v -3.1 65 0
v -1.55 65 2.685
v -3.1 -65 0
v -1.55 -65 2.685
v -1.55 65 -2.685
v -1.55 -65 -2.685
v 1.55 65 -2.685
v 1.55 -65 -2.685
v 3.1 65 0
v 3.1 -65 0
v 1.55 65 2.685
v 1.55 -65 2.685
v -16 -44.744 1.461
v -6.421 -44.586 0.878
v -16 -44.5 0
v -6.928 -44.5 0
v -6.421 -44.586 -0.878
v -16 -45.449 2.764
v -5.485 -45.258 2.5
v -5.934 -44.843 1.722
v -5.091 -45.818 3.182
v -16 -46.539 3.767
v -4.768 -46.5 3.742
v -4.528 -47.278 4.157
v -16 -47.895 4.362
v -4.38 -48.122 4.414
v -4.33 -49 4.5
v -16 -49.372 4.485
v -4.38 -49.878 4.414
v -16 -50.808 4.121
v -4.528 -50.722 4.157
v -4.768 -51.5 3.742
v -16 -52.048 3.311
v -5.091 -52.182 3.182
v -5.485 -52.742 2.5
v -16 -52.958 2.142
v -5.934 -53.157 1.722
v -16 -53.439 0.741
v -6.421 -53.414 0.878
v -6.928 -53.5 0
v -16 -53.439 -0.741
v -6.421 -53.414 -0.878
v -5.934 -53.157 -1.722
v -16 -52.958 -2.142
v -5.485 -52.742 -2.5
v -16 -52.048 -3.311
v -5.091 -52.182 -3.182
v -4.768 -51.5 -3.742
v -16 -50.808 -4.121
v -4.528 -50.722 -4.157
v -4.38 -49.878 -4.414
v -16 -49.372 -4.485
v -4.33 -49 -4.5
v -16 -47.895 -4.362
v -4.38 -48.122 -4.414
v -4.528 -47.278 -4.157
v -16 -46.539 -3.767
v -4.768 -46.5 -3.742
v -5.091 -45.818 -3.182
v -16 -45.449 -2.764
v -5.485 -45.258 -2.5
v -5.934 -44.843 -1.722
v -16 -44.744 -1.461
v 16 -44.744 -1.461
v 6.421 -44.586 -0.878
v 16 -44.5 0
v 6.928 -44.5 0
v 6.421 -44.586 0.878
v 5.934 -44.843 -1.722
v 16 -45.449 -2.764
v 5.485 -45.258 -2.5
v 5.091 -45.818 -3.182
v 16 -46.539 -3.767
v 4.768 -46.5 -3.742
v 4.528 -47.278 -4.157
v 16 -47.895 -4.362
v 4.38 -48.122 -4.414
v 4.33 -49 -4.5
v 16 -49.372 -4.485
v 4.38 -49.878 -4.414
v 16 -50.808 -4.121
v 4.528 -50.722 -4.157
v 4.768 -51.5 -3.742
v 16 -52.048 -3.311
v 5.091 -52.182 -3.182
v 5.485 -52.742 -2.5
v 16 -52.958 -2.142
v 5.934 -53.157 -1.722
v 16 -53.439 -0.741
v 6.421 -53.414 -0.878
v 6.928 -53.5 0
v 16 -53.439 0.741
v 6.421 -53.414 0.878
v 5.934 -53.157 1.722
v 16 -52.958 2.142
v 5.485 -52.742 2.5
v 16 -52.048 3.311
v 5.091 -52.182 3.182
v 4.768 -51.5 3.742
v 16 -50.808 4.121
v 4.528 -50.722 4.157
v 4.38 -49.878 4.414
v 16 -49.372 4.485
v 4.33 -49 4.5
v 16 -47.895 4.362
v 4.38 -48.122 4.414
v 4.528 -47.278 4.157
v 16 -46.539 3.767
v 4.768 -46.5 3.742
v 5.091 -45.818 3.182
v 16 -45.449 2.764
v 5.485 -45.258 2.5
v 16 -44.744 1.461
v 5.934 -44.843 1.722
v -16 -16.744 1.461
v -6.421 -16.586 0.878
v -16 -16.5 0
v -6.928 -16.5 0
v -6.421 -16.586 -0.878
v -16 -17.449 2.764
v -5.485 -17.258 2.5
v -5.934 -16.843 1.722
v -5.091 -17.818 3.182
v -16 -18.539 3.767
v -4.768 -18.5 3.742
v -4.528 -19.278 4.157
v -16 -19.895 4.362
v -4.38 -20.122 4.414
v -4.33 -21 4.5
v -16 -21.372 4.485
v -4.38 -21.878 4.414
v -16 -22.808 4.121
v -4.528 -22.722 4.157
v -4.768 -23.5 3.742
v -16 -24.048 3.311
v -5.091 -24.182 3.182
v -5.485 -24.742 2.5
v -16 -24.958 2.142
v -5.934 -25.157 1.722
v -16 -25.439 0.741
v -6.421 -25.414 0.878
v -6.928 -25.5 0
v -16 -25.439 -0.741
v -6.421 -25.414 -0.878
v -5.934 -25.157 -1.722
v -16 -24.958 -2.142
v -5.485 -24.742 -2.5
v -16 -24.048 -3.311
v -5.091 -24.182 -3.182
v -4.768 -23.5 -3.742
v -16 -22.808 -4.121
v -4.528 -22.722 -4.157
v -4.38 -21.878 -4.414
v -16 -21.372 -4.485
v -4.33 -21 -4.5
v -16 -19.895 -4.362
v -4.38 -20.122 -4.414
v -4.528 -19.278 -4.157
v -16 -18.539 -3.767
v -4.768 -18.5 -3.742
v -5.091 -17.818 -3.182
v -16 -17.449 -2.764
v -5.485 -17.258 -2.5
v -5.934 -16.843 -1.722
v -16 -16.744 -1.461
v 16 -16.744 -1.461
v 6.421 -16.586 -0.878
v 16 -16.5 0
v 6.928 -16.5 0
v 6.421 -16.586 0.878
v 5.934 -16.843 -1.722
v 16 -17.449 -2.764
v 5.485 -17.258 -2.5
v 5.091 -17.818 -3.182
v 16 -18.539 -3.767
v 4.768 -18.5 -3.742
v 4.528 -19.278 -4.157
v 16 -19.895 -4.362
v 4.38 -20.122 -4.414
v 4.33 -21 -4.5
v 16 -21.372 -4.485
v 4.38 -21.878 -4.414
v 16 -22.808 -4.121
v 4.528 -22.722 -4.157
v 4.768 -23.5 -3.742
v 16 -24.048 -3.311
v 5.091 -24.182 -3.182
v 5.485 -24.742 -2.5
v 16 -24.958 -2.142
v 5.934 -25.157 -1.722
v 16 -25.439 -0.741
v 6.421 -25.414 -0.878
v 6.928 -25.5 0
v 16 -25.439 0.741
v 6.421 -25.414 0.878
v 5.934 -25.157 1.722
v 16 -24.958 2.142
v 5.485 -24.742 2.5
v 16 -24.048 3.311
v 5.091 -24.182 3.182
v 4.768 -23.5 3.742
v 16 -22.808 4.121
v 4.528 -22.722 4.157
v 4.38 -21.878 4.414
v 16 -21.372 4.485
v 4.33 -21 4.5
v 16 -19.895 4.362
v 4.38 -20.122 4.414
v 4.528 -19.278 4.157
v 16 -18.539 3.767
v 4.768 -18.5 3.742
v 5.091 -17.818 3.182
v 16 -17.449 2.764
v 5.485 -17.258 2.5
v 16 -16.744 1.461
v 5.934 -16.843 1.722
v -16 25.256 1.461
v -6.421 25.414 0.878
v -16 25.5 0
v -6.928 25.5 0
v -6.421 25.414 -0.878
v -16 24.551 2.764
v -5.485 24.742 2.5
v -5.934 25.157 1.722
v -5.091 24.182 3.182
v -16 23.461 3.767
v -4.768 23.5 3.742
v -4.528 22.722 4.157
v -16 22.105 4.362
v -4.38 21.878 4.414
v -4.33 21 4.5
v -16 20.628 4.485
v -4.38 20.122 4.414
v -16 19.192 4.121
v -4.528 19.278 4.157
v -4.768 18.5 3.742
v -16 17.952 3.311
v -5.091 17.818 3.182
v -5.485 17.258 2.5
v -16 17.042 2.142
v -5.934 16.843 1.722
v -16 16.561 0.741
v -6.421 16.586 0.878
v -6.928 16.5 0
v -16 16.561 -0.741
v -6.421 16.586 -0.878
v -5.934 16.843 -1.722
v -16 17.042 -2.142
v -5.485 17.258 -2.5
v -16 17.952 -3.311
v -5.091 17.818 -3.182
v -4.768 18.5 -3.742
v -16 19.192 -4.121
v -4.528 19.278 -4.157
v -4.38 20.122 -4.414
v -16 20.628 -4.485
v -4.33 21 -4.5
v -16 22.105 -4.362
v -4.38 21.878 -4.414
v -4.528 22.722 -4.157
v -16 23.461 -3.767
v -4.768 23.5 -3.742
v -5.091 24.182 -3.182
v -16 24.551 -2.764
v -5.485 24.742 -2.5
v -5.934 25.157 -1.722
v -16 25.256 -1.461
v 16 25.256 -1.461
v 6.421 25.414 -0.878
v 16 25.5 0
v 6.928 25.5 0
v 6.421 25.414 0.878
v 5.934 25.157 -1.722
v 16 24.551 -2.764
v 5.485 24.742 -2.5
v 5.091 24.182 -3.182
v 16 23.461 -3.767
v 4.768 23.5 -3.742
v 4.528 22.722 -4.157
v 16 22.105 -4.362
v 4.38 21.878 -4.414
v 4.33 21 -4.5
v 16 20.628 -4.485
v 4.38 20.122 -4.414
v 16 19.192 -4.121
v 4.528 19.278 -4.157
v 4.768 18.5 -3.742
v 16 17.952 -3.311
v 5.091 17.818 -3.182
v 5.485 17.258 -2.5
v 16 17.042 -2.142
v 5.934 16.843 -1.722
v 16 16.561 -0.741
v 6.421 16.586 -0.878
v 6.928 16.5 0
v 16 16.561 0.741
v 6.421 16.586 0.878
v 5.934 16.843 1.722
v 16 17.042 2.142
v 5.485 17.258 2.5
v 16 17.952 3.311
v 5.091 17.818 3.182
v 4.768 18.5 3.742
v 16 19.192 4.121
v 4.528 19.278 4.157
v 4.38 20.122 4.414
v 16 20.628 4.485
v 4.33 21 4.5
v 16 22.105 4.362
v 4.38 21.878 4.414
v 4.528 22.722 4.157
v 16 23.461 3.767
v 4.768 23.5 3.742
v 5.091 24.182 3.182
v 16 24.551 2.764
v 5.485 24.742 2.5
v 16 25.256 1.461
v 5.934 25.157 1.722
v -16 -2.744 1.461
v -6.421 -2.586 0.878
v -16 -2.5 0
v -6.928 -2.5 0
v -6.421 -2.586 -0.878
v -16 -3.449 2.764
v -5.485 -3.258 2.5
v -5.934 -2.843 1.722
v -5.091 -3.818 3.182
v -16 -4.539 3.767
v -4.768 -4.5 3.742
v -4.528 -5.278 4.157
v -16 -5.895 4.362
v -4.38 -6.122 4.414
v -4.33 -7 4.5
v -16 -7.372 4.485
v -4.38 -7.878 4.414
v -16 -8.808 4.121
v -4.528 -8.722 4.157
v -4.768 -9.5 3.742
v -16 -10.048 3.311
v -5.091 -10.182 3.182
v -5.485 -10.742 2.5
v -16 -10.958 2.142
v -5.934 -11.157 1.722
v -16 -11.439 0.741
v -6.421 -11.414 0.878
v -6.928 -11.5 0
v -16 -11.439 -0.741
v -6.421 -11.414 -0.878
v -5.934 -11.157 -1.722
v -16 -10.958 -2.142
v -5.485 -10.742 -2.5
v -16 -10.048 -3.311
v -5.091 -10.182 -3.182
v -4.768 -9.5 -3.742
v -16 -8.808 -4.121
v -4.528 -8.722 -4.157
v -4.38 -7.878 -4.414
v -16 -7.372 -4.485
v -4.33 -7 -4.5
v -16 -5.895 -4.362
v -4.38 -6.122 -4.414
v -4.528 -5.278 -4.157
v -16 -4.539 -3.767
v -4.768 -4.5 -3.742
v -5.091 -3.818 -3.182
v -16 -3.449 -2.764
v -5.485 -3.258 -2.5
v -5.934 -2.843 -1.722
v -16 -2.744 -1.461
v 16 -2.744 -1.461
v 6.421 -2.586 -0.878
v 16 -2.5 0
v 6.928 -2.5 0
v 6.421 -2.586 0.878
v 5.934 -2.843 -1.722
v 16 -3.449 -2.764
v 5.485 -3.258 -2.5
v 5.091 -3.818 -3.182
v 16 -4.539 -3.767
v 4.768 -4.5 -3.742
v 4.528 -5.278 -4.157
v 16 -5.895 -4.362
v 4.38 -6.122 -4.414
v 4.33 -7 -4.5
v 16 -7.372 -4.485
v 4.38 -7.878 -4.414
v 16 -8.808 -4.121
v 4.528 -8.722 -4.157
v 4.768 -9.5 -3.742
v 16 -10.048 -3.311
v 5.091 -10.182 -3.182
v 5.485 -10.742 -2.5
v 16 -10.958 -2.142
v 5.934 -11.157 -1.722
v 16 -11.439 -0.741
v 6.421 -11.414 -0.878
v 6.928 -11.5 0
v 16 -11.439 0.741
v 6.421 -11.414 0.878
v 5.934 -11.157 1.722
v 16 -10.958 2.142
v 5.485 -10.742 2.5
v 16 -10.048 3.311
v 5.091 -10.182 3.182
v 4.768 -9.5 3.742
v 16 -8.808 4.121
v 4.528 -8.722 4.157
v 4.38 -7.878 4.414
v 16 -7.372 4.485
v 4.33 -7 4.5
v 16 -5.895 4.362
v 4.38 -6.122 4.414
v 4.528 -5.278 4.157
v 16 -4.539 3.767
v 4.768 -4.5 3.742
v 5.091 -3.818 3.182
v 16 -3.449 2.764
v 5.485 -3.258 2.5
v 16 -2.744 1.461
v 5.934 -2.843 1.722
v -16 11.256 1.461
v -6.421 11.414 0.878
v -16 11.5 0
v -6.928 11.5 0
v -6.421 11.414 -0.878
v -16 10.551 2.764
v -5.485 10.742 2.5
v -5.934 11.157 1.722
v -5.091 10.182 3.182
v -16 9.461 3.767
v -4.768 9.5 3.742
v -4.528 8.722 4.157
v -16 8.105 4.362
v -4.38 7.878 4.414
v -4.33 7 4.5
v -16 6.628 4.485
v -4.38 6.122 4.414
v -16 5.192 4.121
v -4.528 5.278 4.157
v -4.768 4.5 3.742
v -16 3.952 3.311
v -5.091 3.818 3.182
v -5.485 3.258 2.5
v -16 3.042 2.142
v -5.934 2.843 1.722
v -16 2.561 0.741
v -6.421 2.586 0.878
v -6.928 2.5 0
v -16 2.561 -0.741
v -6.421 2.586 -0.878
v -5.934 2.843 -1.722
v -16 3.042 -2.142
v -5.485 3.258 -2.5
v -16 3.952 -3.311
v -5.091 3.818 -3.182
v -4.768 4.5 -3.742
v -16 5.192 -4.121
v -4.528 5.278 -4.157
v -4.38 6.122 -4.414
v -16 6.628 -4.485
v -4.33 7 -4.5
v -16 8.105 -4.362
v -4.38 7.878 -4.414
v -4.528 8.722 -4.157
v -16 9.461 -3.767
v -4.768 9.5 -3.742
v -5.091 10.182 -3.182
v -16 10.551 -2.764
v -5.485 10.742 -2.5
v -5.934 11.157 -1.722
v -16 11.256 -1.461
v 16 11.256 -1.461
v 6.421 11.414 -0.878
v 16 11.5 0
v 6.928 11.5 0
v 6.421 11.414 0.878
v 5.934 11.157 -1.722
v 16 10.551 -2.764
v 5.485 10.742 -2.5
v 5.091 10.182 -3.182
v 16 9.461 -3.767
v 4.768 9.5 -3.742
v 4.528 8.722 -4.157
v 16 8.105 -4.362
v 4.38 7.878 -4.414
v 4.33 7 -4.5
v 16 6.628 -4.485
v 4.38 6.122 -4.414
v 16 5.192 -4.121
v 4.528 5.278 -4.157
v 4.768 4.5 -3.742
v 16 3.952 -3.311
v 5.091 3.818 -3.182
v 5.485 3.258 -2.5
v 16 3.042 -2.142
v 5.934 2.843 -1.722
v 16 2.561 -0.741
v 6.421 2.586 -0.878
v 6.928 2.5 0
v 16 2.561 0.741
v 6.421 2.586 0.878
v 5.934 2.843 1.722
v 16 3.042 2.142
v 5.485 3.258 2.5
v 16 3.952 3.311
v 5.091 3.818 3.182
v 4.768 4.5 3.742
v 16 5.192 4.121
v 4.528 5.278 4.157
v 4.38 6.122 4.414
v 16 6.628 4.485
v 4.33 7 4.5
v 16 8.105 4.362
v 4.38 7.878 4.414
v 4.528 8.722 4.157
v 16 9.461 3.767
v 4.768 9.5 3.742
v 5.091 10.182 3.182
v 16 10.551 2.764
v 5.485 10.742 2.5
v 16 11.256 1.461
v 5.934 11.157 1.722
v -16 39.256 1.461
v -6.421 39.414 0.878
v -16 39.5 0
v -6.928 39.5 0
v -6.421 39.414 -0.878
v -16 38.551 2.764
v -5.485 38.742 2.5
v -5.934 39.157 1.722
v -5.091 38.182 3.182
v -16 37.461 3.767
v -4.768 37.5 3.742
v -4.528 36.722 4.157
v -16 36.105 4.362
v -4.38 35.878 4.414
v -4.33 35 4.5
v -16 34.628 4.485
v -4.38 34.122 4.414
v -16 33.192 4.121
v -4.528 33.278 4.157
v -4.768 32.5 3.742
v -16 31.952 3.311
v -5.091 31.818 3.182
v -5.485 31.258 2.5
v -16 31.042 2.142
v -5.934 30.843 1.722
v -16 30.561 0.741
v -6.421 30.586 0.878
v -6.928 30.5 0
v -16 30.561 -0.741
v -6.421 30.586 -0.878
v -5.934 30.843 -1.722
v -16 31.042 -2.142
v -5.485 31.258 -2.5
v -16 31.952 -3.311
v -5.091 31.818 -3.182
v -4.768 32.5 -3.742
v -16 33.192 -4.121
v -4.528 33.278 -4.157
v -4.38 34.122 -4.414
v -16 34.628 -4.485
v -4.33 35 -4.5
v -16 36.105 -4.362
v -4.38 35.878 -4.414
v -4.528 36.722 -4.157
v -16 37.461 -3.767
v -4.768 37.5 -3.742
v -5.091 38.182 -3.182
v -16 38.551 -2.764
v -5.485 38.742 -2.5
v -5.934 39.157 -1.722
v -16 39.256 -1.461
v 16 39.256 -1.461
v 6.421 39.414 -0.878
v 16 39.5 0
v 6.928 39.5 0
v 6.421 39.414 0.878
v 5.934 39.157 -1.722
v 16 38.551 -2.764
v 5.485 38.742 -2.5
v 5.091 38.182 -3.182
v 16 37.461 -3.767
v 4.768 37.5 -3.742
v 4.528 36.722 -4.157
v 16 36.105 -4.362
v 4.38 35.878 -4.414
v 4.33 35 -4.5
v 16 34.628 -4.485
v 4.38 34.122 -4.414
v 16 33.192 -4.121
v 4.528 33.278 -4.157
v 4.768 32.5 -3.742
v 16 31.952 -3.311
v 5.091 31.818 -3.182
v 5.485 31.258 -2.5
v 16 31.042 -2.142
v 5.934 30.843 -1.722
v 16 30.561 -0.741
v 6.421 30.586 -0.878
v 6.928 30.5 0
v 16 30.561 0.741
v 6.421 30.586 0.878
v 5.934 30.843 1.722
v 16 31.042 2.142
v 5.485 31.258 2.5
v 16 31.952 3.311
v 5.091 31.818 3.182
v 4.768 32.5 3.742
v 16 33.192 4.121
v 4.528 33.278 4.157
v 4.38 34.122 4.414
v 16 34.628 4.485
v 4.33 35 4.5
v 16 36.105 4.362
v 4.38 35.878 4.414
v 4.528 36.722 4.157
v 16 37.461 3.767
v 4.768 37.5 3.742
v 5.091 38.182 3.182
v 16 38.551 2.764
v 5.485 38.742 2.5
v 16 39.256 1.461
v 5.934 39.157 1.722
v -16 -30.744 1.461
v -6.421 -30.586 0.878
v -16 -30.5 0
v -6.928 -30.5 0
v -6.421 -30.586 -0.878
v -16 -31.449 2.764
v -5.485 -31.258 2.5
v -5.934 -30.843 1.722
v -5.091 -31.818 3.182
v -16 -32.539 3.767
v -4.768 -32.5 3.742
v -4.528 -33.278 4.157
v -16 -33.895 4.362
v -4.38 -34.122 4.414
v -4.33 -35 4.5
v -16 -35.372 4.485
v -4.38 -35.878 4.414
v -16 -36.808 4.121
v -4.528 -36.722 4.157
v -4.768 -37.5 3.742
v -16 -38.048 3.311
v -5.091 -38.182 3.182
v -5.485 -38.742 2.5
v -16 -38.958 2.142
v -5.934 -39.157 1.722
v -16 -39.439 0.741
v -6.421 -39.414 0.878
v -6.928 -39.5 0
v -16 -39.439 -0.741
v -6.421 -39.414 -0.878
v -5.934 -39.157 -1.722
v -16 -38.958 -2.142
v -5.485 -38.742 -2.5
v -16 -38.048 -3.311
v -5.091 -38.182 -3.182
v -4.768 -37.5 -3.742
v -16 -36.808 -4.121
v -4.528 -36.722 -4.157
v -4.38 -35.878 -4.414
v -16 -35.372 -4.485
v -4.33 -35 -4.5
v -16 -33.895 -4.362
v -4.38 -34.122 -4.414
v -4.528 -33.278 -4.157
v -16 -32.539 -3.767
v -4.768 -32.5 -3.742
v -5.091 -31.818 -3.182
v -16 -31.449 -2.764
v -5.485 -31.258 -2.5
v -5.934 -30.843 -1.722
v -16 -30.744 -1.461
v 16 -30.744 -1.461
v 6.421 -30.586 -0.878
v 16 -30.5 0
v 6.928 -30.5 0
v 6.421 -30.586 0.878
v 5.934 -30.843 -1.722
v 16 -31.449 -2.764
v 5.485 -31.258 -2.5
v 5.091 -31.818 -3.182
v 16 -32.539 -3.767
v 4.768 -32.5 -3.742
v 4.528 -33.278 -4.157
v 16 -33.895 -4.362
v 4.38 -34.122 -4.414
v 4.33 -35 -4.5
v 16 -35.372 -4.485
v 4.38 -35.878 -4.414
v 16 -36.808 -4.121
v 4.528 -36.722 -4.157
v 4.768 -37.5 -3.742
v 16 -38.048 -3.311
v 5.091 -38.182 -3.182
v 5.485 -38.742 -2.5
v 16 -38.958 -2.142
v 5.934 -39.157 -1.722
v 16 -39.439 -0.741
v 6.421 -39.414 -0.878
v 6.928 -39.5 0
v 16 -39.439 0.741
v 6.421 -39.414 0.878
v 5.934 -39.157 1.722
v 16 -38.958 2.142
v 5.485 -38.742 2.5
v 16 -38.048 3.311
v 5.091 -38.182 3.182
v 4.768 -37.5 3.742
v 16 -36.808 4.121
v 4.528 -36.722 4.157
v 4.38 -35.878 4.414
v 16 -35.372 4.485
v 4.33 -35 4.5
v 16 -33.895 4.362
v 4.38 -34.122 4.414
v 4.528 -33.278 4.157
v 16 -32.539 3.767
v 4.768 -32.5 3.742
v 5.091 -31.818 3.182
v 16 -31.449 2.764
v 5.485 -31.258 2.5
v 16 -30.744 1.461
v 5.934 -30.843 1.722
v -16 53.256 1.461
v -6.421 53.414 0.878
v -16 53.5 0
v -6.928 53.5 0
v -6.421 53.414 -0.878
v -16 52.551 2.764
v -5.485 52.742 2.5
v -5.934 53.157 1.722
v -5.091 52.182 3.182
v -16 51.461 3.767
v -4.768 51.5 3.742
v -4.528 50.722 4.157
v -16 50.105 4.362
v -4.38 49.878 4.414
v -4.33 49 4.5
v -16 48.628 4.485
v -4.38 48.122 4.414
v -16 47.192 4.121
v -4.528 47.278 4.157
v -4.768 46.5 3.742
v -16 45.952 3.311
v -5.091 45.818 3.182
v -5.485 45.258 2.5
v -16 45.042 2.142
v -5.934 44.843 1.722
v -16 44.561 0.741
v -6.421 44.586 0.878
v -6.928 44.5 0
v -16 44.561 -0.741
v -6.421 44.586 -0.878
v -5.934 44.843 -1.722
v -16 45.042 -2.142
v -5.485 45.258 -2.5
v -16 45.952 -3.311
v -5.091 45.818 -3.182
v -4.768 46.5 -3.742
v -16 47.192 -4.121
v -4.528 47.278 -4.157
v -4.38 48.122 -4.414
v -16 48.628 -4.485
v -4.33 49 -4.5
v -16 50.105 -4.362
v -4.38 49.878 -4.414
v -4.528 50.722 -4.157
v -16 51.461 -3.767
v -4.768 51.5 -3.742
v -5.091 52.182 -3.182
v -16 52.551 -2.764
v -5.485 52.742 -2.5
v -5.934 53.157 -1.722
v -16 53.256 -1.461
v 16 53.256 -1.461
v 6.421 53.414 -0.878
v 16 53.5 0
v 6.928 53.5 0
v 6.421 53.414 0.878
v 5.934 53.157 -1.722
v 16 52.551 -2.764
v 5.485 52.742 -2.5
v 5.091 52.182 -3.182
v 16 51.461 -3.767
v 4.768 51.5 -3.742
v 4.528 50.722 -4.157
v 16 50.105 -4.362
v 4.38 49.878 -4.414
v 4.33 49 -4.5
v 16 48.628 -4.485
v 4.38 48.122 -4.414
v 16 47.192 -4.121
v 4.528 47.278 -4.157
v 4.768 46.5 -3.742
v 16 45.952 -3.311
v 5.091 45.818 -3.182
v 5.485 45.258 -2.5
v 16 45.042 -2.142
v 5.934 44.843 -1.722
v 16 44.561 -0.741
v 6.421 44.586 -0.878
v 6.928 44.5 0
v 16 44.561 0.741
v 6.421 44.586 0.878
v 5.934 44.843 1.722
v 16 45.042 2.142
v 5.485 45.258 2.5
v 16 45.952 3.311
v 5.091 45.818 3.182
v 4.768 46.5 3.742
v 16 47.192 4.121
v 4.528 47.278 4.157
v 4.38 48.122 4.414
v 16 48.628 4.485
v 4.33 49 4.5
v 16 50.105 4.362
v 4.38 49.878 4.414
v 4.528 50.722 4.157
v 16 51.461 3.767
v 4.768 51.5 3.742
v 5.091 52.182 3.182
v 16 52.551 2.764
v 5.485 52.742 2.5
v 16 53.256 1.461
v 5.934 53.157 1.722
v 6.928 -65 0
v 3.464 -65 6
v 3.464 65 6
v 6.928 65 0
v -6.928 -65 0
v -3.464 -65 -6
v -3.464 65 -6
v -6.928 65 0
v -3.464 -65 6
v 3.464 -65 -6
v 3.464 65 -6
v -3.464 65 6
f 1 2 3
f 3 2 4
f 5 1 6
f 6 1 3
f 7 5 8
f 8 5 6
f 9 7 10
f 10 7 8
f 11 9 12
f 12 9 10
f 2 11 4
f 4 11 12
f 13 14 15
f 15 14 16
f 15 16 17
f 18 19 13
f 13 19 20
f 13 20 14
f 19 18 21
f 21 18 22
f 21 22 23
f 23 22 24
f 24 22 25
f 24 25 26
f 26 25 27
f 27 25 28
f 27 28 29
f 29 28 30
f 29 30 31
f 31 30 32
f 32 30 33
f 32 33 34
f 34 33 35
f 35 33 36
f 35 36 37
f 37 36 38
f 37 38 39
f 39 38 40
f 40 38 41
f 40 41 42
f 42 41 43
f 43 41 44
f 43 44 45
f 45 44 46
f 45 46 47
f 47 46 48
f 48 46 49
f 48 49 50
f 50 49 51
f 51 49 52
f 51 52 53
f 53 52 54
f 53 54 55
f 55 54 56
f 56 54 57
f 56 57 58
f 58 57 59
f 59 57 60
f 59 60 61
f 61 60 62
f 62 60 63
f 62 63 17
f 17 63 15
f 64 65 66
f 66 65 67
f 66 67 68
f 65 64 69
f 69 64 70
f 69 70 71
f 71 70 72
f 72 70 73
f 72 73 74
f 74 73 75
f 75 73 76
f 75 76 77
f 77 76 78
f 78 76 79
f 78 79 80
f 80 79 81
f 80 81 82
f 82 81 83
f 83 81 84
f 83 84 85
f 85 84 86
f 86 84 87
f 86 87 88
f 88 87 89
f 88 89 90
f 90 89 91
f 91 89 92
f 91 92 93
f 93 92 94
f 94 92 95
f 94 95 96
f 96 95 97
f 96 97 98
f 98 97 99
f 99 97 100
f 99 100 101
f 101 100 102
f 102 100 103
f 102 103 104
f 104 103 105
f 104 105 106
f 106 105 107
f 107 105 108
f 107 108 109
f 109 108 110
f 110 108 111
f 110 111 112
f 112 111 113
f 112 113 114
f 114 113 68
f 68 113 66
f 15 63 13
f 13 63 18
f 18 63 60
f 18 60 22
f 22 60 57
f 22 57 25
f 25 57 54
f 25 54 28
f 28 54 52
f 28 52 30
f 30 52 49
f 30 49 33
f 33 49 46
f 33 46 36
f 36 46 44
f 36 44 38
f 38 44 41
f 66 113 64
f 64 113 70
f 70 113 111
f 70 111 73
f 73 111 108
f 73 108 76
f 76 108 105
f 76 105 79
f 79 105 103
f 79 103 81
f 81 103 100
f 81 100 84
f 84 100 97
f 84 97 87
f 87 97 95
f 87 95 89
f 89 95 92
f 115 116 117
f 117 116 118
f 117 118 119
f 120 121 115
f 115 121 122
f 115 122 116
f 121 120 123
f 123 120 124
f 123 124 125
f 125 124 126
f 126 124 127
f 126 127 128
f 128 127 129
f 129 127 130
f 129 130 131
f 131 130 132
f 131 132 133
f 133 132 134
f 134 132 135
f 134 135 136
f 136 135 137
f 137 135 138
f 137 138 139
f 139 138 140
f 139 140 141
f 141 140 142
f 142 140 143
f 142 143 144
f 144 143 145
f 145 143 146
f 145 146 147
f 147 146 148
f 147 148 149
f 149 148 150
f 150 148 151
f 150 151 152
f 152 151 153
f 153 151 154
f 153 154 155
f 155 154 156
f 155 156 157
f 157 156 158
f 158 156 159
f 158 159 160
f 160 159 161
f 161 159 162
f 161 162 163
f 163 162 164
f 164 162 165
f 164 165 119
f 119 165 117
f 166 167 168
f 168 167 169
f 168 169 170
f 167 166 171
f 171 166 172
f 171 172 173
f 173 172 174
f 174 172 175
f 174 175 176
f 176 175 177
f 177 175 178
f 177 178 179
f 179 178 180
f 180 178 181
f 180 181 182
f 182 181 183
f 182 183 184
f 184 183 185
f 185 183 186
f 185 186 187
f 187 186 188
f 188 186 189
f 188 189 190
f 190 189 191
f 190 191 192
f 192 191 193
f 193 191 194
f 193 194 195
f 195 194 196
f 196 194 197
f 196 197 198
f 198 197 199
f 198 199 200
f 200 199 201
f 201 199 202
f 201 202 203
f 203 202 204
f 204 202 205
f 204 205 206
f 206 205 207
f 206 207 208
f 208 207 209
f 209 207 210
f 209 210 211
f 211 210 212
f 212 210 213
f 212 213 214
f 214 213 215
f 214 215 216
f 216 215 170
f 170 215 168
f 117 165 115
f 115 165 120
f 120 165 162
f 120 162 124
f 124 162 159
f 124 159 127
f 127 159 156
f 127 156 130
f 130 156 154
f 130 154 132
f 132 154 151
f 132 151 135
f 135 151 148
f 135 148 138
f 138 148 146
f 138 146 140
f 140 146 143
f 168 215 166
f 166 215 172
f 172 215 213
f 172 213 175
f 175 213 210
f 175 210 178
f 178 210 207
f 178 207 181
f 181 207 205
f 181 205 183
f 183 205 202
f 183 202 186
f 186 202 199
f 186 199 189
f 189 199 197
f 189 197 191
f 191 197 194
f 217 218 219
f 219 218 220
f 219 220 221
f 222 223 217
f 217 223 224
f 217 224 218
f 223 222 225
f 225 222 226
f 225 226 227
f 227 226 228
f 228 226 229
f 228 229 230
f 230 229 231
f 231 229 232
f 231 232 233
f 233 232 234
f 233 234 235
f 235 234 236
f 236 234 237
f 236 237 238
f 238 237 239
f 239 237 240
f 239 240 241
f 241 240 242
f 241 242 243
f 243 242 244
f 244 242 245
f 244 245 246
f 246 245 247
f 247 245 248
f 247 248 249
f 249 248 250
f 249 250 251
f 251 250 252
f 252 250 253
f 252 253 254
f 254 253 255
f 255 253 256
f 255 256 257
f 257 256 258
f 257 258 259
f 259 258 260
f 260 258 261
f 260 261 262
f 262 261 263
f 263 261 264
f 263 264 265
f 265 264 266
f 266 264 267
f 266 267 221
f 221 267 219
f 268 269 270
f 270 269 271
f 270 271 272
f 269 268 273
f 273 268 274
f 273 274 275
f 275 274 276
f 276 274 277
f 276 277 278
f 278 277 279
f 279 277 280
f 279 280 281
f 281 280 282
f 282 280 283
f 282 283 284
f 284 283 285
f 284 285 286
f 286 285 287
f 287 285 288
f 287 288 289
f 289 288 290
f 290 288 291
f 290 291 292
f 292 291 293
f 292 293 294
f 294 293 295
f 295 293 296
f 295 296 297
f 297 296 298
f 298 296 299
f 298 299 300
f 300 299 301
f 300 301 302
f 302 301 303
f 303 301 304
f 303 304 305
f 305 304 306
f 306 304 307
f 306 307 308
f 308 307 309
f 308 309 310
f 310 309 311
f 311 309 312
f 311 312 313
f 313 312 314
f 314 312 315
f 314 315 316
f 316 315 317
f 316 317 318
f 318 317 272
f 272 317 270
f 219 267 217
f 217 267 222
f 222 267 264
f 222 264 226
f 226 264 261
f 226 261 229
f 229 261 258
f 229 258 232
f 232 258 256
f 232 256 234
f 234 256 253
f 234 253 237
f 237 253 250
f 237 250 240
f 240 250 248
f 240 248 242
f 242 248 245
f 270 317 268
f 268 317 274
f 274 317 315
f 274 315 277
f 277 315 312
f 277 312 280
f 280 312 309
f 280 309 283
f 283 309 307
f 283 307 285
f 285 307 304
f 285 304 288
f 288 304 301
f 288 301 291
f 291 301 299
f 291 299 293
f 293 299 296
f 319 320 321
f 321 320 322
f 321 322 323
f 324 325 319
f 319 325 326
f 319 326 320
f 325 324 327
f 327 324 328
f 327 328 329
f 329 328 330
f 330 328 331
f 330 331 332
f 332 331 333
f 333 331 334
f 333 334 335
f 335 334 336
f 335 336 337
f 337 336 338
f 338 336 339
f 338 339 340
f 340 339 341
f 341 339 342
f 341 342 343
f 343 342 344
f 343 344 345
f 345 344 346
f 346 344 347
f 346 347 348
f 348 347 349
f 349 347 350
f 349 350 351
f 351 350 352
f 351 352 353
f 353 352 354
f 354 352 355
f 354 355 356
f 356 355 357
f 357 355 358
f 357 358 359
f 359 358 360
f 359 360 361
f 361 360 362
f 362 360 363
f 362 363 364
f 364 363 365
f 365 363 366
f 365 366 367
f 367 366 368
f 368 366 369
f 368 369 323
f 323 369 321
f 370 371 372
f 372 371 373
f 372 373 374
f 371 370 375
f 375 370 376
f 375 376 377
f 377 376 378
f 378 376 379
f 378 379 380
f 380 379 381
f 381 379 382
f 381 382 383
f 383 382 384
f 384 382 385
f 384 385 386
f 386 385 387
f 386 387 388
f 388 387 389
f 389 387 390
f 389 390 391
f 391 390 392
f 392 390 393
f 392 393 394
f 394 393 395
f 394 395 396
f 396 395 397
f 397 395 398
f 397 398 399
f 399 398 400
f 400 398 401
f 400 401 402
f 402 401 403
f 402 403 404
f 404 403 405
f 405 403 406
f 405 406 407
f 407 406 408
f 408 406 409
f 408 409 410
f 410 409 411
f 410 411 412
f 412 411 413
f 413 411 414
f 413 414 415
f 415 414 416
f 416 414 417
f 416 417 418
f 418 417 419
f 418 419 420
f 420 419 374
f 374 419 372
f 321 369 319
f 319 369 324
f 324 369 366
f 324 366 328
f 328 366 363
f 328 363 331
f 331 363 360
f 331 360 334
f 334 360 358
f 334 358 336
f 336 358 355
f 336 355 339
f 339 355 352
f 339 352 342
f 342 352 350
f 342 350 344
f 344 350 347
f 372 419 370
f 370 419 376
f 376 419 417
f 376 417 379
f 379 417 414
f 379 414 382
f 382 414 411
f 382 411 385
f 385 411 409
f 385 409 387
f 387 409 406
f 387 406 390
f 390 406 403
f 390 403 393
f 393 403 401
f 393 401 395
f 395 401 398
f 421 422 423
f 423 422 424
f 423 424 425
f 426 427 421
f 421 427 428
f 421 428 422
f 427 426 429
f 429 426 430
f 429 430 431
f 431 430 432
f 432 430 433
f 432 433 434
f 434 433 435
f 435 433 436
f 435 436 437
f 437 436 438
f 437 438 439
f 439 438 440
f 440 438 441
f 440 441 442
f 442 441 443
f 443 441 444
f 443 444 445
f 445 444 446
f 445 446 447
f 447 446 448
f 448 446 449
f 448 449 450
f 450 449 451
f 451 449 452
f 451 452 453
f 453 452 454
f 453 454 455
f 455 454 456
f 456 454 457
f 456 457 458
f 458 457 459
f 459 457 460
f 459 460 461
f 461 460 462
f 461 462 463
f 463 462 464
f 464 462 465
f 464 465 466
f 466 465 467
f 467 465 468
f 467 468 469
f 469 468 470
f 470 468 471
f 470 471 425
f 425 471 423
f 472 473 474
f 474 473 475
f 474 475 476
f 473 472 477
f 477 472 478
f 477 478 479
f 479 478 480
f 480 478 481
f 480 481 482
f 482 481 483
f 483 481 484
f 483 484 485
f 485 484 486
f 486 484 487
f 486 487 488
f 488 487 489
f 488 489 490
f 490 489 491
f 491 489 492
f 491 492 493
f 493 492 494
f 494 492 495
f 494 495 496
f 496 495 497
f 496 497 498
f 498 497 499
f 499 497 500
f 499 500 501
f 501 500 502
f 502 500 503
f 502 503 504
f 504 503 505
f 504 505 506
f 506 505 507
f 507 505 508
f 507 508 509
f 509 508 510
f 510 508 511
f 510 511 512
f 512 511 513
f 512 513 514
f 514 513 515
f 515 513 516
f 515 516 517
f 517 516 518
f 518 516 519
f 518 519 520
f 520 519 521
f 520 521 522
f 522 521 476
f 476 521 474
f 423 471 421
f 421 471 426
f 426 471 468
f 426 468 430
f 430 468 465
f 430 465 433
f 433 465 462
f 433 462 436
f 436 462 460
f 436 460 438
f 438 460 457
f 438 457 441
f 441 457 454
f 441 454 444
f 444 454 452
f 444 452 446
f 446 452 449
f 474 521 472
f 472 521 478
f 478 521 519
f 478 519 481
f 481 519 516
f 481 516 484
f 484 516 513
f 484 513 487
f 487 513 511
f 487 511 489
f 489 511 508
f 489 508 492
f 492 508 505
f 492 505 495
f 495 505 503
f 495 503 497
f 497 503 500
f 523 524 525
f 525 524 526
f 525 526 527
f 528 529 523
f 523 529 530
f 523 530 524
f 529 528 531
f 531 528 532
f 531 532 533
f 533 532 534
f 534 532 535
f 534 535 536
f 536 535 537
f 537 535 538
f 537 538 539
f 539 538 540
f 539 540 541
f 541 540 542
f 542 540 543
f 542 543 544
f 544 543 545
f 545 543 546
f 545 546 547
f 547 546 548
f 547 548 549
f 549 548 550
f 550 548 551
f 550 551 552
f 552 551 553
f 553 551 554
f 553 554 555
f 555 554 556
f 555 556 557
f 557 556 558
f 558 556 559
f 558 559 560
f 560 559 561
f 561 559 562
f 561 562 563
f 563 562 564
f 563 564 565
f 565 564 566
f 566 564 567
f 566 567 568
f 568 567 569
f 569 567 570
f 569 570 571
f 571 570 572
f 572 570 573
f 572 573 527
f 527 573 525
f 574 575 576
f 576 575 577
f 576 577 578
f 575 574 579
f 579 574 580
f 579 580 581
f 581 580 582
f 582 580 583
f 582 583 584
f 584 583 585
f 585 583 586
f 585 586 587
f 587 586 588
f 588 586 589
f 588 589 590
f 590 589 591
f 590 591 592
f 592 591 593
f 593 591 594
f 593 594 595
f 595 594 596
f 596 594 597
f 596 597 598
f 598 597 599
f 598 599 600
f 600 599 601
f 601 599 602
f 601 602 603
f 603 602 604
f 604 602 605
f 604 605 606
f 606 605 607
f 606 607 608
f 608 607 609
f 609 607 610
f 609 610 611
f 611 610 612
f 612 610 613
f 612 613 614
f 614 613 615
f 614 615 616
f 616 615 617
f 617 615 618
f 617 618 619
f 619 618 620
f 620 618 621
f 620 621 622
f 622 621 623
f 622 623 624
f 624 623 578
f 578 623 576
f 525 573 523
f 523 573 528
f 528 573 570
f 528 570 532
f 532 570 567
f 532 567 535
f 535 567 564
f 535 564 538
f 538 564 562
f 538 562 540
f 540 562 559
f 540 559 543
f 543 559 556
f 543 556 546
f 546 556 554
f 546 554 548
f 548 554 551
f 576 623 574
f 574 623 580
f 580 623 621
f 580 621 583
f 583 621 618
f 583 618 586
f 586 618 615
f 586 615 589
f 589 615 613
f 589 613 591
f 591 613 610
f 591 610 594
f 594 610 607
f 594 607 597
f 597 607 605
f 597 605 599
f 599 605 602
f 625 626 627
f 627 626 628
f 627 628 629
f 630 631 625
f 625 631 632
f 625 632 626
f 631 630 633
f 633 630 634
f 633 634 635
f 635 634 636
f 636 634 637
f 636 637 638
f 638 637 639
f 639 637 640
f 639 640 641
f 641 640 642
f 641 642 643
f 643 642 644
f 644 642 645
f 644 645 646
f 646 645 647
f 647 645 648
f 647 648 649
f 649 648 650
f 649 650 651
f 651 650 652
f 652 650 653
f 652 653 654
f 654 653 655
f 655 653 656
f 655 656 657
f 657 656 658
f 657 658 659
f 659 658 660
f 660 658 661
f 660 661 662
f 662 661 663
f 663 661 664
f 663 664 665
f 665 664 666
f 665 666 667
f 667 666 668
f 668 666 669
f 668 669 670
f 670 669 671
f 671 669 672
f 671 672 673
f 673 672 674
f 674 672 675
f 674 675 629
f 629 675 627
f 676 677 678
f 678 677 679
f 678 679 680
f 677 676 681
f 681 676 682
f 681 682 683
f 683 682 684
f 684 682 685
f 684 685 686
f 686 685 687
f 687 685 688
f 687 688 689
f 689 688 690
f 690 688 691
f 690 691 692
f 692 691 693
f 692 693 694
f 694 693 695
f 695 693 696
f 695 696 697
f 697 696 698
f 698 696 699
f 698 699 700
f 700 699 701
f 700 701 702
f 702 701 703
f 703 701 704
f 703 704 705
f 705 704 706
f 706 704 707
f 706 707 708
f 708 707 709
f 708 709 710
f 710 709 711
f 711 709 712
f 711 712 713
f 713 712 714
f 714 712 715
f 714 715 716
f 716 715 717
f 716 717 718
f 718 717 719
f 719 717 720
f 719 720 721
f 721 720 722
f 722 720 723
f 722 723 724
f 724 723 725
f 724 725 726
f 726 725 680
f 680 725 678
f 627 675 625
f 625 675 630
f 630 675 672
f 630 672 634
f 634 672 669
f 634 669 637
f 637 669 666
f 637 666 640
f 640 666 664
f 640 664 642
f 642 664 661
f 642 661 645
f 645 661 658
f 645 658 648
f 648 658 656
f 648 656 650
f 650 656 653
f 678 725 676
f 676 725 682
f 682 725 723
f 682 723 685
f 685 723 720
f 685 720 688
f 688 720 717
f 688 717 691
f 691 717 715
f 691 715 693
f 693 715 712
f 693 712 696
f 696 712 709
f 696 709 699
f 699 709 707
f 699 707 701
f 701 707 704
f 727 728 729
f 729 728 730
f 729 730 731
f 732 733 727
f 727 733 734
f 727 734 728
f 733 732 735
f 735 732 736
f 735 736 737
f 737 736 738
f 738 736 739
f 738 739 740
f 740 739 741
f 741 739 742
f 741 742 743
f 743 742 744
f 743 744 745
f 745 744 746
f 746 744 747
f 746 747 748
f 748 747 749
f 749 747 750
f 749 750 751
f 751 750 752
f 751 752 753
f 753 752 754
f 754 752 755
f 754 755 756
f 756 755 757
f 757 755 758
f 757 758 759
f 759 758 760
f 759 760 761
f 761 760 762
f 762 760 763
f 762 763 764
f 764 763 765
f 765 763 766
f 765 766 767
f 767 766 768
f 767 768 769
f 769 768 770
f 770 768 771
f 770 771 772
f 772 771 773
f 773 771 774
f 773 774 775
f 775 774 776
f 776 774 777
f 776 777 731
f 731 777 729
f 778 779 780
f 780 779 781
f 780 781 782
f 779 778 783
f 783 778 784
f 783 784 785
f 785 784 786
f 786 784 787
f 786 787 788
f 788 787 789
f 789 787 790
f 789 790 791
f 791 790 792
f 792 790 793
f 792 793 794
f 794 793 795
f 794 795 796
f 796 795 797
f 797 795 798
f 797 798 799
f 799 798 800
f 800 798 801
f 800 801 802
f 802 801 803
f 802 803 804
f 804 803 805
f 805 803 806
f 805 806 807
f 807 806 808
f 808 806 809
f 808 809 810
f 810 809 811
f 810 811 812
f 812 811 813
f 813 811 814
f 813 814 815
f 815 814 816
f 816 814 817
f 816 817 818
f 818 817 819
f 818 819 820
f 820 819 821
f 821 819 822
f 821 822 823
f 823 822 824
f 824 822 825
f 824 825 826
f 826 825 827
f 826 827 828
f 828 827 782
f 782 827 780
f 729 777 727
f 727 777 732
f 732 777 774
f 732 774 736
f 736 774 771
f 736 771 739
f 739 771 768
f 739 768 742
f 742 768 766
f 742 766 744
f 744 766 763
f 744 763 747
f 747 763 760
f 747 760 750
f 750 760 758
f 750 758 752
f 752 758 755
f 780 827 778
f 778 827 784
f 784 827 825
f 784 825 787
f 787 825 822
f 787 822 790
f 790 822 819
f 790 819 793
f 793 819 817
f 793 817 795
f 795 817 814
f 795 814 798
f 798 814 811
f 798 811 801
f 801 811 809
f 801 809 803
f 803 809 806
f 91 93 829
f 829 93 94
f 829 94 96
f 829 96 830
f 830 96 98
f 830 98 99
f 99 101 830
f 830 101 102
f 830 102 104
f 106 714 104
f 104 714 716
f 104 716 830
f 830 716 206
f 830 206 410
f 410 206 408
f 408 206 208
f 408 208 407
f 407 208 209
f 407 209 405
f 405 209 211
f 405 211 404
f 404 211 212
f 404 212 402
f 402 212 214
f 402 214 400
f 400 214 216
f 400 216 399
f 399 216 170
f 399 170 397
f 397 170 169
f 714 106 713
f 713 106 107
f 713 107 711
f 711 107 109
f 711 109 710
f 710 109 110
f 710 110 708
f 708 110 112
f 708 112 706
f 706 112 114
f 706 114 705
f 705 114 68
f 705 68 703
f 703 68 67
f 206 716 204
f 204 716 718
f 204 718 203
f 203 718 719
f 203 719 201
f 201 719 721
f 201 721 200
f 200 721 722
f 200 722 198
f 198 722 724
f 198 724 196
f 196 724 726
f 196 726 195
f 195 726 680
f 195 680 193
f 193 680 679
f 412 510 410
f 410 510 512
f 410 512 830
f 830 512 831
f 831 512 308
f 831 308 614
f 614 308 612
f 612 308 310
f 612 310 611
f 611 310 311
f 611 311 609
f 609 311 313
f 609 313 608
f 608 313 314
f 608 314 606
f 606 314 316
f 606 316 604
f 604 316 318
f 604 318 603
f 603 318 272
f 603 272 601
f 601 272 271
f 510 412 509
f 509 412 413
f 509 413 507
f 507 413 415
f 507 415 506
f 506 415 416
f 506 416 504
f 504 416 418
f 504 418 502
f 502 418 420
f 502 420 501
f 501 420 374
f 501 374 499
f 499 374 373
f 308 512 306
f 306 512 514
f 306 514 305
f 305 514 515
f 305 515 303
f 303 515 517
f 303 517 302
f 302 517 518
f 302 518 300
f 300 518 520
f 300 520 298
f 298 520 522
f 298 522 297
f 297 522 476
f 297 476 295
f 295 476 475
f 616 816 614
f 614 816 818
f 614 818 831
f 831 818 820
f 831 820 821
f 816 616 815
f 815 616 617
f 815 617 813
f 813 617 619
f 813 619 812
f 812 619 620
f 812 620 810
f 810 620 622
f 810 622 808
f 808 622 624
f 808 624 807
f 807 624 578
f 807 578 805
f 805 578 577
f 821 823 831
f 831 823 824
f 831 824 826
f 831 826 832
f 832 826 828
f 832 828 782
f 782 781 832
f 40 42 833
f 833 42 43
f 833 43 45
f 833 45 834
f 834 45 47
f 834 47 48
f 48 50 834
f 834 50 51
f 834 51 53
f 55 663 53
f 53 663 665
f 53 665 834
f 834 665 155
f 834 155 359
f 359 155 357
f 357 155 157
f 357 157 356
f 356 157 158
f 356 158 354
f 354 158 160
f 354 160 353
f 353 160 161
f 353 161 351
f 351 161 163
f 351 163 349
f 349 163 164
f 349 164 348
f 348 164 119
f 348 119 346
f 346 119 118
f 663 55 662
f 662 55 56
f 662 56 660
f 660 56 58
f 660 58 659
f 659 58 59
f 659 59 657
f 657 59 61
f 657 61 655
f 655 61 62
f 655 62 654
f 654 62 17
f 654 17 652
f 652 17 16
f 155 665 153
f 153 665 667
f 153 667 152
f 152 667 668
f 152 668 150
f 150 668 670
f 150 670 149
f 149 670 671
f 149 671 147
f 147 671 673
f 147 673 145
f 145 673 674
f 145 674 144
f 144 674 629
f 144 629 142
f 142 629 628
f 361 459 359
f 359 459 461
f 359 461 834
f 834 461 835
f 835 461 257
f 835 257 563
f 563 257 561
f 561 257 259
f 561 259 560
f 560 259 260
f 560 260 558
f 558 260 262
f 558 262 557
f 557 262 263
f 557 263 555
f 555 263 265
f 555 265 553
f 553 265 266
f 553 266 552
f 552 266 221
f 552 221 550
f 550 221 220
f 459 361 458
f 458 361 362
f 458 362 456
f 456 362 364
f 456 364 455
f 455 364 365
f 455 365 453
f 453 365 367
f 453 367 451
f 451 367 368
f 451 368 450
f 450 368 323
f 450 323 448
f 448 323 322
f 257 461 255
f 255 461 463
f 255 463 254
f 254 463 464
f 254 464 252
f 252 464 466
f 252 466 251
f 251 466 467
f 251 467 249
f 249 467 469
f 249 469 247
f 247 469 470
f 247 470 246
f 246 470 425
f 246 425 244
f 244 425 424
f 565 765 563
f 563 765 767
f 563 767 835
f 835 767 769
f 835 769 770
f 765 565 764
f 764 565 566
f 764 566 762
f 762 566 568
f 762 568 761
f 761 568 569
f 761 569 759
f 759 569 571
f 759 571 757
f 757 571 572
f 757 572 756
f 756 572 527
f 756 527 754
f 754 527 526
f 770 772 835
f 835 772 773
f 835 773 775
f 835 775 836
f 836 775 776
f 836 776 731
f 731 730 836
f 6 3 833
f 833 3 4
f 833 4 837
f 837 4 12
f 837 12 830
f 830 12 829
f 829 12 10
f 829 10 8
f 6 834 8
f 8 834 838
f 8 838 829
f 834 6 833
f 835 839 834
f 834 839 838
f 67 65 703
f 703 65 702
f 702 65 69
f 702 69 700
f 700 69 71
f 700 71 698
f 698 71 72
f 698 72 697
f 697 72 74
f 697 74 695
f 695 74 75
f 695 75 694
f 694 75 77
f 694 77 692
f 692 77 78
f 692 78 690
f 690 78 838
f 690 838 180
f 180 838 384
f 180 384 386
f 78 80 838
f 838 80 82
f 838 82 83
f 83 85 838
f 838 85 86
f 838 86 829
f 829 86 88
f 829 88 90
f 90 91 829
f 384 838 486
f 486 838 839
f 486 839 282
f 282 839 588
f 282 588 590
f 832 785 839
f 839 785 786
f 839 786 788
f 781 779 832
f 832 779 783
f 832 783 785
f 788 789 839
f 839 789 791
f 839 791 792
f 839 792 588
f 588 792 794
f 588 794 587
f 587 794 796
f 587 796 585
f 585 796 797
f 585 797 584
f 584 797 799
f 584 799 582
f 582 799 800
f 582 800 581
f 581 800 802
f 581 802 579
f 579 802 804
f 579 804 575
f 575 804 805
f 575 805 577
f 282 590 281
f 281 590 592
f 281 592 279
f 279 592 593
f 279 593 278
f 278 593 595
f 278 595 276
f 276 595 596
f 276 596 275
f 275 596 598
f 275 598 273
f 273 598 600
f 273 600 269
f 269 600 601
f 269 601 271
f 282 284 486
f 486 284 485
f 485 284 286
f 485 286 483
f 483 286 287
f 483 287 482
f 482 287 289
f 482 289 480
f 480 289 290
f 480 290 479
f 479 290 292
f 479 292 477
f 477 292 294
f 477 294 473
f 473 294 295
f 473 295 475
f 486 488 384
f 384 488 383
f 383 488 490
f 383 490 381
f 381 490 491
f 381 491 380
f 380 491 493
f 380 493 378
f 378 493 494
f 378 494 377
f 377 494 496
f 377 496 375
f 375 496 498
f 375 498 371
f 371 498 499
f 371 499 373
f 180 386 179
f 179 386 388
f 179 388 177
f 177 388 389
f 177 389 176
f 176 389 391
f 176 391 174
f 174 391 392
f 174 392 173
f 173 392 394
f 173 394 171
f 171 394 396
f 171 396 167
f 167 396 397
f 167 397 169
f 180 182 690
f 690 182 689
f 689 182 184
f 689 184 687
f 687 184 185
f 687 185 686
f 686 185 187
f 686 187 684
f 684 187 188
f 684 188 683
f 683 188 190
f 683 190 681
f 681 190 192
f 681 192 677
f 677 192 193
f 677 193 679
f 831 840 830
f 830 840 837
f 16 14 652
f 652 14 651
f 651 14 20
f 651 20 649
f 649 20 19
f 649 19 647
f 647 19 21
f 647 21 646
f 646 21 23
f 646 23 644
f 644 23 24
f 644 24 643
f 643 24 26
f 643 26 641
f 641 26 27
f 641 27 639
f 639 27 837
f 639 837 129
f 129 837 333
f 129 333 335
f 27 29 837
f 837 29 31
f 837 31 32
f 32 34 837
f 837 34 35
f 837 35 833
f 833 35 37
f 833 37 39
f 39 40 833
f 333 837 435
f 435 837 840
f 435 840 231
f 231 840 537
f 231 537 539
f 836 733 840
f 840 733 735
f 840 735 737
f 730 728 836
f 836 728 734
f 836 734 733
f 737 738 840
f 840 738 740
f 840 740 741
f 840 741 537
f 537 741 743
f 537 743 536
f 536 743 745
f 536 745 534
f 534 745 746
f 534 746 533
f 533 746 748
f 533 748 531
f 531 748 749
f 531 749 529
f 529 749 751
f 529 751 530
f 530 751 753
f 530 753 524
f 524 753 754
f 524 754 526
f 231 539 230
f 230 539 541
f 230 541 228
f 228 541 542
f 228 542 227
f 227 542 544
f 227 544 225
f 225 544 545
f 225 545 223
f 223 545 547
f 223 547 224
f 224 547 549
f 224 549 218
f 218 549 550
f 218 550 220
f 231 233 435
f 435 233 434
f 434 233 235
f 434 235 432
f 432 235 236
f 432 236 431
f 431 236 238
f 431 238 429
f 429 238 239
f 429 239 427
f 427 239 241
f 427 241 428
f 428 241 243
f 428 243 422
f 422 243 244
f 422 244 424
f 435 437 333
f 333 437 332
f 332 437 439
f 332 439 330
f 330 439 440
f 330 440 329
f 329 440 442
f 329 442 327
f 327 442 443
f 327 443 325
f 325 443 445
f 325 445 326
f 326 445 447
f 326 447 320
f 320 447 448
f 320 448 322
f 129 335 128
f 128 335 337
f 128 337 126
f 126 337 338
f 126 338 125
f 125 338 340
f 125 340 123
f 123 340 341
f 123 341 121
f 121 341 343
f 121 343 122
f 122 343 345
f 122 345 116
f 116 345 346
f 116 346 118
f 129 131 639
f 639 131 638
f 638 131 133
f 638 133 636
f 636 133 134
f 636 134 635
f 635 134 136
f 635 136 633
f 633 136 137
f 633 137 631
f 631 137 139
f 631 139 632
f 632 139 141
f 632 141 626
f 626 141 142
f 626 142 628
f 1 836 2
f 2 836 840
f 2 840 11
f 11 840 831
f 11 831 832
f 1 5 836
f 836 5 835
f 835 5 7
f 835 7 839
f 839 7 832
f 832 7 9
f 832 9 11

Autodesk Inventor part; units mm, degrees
ref_plane "YZ Plane" through (0, 0, 0) normal (1, 0, 0) x (0, 1, 0)
ref_plane "XZ Plane" through (0, 0, 0) normal (0, 1, 0) x (-1, 0, 0)
ref_plane "XY Plane" through (0, 0, 0) normal (0, 0, 1) x (1, 0, 0)
sketch "Outer Diameter Sketch" plane through (0, 0, 0) normal (0, 1, 0) x (-1, 0, 0)
  line L0 (0, -28.0163) -> (0, 28.3344) construction
  line L1 (17.1062, 0) -> (-23.8822, 0) construction
  line L2 (3.4641, -6) -> (6.9282, 0)
  line L3 (6.9282, 0) -> (3.4641, 6)
  line L4 (3.4641, 6) -> (-3.4641, 6)
  line L5 (-3.4641, 6) -> (-6.9282, 0)
  line L6 (-6.9282, 0) -> (-3.4641, -6)
  line L7 (-3.4641, -6) -> (3.4641, -6)
  line L8 (0, -6) -> (0, 6) construction
  line L9 (-6.9282, 0) -> (6.9282, 0) construction
  point P0 (0, 0)
  dimension "d23" = 120
  dimension "d25" = 120
  dimension "d27" = 120
  dimension "d29" = 120
  dimension "d31" = 120
  dimension "d32" = 12
extrude "Outer Diameter Extrusion" add sketch "Outer Diameter Sketch" along normal mid plane 130
sketch "Sketch2" plane through (0, 0, 0) normal (1, 0, 0) x (0, 1, 0)
  circle A0 centre (-7, 0) radius 4.5
  line L0 (-72, 0) -> (-7, 0) construction
  line L1 (-7, 0) -> (58, 0) construction
  circle A1 centre (7, 0) radius 4.5
  circle A2 centre (21, 0) radius 4.5
  circle A3 centre (35, 0) radius 4.5
  circle A4 centre (-21, 0) radius 4.5
  circle A5 centre (-7, 0) radius 4.5
  circle A6 centre (7, 0) radius 4.5
  circle A7 centre (21, 0) radius 4.5
  circle A8 centre (-35, 0) radius 4.5
  circle A9 centre (-21, 0) radius 4.5
  circle A10 centre (-7, 0) radius 4.5
  circle A11 centre (7, 0) radius 4.5
  circle A12 centre (-49, 0) radius 4.5
  circle A13 centre (-35, 0) radius 4.5
  circle A14 centre (-21, 0) radius 4.5
  circle A15 centre (-7, 0) radius 4.5
  line L2 (0, 54.0285) -> (0, -72.3739) construction
  circle A16 centre (49, 0) radius 4.5
  circle A17 centre (35, 0) radius 4.5
  circle A18 centre (21, 0) radius 4.5
  circle A19 centre (7, 0) radius 4.5
  dimension "d3" = 9
  dimension "d5" = 130
  dimension "d8" = 14
  dimension "d11" = 14
  dimension "d47" = 7
  dimension "d48" = 7
extrude "Peg Extrusions" add sketch "Sketch2" along normal mid plane 32
sketch "Sketch3" plane through (0, -65, 0) normal (0, -1, 0) x (1, 0, 0)
  line L0 (1.55, -2.6847) -> (-1.55, -2.6847)
  line L1 (-1.55, -2.6847) -> (-3.1, 0)
  line L2 (-3.1, 0) -> (-1.55, 2.6847)
  line L3 (-1.55, 2.6847) -> (1.55, 2.6847)
  line L4 (1.55, 2.6847) -> (3.1, 0)
  line L5 (3.1, 0) -> (1.55, -2.6847)
  line L6 (3.1, 0) -> (-3.1, 0) construction
  line L7 (0, 2.6847) -> (0, -2.6847) construction
  line L8 (10.3659, 0) -> (-11.745, 0) construction
  line L9 (0, -9.4896) -> (0, 9.303) construction
  point P0 (0, 0)
  dimension "d33" = 3.1
  dimension "d34" = 3.1
  dimension "d35" = 120
  dimension "d36" = 3.1
  dimension "d37" = 120
  dimension "d38" = 3.1
  dimension "d39" = 120
  dimension "d40" = 3.1
  dimension "d41" = 120
extrude "Inner Hex Cut" cut sketch "Sketch3" against normal up to surface (130 mm away)
equation "\"d1\" = outL"
equation "\"d3\" = pegD"
equation "\"d5\" = outL"
equation "\"d47\" = 0.5 * d8"
equation "\"d14\" = pegL + 2 * outD"
equation "\"d33\" = inhexSL"
equation "\"d34\" = inhexSL"
equation "\"d36\" = inhexSL"
equation "\"d38\" = inhexSL"
equation "\"d40\" = inhexSL"
equation "\"d42\" = pegL + 2 * outD"
equation "\"outD\" = 12"
equation "\"inhexSL\" = 3.1"
equation "\"outL\" = 130"
equation "\"pegL\" = 8"
equation "\"pegD\" = 9"
equation "\"outhexSL\" = 5"
properties part number "Peg Spinner V3"
